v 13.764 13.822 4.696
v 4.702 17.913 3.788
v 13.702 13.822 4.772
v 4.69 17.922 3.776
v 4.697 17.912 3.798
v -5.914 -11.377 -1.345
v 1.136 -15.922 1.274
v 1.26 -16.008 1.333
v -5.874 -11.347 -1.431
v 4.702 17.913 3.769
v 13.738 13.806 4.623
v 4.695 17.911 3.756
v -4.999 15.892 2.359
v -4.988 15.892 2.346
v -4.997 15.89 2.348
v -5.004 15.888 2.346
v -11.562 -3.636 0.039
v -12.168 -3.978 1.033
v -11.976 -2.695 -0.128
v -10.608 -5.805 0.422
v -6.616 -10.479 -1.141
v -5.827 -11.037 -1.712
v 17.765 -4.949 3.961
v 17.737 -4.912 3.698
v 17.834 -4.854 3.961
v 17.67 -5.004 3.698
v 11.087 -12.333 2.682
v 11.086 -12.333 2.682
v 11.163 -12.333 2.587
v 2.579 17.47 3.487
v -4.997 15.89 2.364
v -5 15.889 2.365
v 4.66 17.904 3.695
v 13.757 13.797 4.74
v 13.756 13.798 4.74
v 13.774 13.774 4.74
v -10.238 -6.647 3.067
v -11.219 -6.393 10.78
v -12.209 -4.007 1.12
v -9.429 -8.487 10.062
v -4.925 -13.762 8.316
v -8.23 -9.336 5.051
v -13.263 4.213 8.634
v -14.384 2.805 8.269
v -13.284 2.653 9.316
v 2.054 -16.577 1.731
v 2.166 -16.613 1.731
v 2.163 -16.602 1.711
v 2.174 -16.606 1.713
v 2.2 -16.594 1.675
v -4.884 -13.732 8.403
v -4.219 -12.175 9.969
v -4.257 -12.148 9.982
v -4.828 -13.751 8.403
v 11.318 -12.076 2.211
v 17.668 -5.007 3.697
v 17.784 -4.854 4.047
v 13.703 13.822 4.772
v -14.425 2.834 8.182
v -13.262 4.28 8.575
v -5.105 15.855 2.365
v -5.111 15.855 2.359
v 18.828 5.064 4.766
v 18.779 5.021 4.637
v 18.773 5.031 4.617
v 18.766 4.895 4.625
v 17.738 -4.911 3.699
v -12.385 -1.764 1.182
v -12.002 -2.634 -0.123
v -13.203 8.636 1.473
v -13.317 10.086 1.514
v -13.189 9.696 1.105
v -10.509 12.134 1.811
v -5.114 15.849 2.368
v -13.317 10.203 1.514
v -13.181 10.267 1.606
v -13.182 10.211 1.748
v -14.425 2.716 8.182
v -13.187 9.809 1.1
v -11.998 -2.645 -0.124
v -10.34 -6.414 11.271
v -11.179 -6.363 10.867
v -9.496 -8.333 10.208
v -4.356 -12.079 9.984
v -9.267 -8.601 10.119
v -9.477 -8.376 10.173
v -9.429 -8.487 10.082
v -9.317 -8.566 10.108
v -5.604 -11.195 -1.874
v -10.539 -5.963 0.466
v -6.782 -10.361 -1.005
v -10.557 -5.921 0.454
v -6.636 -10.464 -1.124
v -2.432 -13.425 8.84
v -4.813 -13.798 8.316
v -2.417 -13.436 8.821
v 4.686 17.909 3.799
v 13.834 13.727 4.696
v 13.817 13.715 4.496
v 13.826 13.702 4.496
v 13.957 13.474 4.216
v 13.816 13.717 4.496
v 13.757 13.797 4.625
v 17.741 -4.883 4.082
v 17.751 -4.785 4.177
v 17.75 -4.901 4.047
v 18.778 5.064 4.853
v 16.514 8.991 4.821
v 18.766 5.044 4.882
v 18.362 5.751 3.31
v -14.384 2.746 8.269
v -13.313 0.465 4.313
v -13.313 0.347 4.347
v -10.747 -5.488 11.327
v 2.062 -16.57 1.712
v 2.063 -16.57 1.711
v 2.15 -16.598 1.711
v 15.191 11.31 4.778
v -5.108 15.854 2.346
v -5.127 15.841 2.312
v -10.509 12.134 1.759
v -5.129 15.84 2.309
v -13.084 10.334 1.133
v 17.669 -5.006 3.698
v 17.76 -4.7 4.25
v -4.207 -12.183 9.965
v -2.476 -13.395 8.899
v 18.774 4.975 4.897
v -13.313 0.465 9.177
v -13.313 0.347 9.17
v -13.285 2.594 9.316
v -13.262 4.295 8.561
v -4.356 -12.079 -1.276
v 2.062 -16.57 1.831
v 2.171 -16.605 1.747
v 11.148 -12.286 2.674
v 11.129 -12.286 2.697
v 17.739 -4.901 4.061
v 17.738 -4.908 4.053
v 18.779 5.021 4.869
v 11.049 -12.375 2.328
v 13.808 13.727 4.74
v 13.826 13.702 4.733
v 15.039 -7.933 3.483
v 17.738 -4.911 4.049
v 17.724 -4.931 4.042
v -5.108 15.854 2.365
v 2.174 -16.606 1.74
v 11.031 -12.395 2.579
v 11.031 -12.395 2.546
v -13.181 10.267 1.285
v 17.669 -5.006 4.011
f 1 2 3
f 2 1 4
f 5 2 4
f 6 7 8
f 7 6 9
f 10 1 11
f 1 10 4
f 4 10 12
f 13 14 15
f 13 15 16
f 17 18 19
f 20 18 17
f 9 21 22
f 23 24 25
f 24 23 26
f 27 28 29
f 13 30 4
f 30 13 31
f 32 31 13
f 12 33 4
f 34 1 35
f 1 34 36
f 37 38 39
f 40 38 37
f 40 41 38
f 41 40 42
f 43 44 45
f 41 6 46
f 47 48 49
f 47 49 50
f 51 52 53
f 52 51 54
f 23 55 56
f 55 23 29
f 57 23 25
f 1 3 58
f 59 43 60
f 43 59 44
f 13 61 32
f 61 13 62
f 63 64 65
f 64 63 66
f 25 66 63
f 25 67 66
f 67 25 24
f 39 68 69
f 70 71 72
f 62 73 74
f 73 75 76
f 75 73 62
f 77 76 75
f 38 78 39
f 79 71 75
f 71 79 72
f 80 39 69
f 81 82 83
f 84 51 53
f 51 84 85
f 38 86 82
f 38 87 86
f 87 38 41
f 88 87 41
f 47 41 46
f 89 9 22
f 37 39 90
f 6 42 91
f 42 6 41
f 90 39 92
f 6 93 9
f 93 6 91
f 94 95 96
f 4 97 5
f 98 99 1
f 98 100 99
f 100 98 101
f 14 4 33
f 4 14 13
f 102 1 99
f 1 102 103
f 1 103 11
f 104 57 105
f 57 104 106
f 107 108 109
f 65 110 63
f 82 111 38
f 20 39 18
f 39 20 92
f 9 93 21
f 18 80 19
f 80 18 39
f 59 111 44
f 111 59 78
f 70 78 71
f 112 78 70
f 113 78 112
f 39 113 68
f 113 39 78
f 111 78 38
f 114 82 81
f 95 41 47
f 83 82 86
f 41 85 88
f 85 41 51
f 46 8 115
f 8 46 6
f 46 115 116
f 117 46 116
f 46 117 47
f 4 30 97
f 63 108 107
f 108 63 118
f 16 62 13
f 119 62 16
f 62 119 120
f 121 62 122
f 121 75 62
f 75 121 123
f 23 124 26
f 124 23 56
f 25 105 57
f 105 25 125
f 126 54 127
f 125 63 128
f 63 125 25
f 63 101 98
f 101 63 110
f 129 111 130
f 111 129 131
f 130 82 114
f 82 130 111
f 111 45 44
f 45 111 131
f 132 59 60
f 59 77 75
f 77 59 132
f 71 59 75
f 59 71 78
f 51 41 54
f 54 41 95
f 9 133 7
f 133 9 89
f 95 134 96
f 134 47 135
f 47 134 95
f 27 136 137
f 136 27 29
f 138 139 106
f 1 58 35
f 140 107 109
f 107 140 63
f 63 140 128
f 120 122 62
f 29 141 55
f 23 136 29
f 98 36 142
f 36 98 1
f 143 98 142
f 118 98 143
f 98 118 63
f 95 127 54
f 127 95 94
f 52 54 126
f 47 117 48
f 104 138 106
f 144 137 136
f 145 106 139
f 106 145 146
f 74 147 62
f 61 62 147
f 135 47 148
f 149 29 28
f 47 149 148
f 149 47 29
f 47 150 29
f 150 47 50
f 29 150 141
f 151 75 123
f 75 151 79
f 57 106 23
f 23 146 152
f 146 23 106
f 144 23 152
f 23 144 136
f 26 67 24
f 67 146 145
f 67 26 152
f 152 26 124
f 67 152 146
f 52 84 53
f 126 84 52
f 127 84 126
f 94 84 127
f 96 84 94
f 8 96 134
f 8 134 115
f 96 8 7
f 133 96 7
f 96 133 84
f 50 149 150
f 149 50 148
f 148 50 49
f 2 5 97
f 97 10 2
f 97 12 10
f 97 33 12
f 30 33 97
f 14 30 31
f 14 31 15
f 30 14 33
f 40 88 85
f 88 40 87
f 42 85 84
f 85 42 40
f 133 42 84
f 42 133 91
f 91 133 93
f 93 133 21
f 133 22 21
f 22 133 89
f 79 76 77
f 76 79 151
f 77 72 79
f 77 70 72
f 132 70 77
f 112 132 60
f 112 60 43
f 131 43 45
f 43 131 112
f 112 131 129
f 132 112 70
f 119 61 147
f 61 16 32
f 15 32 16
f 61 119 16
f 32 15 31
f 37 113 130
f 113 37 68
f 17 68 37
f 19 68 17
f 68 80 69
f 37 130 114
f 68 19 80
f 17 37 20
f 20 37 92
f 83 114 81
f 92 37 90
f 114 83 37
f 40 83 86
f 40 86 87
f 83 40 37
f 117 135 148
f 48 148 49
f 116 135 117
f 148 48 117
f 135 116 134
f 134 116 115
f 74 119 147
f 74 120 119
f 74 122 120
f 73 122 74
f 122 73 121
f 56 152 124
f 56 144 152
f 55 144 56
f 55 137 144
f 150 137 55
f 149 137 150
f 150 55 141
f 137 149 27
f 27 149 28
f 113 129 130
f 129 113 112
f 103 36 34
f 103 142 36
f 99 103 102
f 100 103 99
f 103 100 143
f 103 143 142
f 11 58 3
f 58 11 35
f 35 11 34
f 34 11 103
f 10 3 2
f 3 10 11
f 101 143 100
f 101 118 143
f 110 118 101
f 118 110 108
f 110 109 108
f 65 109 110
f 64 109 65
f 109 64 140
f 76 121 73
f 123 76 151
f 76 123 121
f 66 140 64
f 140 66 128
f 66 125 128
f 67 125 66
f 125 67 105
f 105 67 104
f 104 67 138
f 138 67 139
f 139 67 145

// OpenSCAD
// Auto-generated OpenSCAD file

    inner_points = 10*[[1.1000305201583598, -1.229950875030529, -0.08894189251692455], [-0.5027426604470553, 1.579473909815398, -0.1908558995277139], [-0.846549708488417, -0.523909617402483, -1.3897599911510223], [0.01808376162039204, 0.08034171518490725, 1.6695577831956607], [0.1351283573464456, -0.5466570677439849, -1.5789443683117281], [0.9574436533003191, 0.028020099593282485, 1.3306397363982712], [-0.3601557935890146, 0.3215029351915868, -1.6104375284429095], [0.46215950236485903, 0.8961801025288543, 1.2991465762670897], [0.21433774726042953, -1.6511067907648083, -0.284328705476233], [0.4815241834294346, -1.4643828601215962, 0.6610524779902326], [-1.30999013029746, 1.0208149579040204, -0.3812546859455942], [-1.0428036941284546, 1.2075388885472327, 0.5641264975208714], [0.6928698992905247, -1.139259691273304, -0.9977847491226374], [1.2010887016589473, -0.7840896693003617, 0.8004371207145751], [-0.603800841947643, 1.133612704085231, -1.0802349127592135], [-0.09558203957922018, 1.4887827260581734, 0.7179869570779989], [-0.2929413398808356, -1.2918779775559366, -1.0676693641360977], [0.40656183134257406, -0.8030283806190294, 1.4073707065037098], [-1.2350277782105992, 0.35946047840145373, -1.1275729144590714], [-0.5355246069871895, 0.8483100753383608, 1.347467156180736], [1.766851594949058, 0.056206898787851886, -0.8094846211676406], [0.9654650046463505, 1.4609192912108153, -0.8604416246730354], [1.867909776449646, 0.502068104518019, 0.07989439206385895], [1.3726256255141858, 1.3702281074535907, 0.04840123193267751], [1.209110053004979, 0.6488095223171712, -1.3906442403567312], [1.7637877113705789, -0.4911118899577973, 0.027433986645217595], [0.46711697013241127, 1.781760505400738, -0.05501617699135854], [1.104987987925912, -0.3443704721586452, -1.443104645775373], [0.3036013976232044, 1.0603419202643185, -1.4940616492807675], [1.3695617419357062, 0.8229093187079415, 0.8853198397455359], [-0.9347794463333561, -0.8427966545821481, -0.44608283720557035], [-0.5024627112789515, -0.5406709882884531, 1.0835760499677713], [-1.3232575160555382, 0.04057344122178862, -0.18389576051361925], [-1.056071079886533, 0.2272973718650007, 0.7614854229528463], [-0.42750035919209084, -1.2020254677910198, 0.33725782145429417]];

    outer_points = 10*[[-0.7137129435947347, 0.17792343145379144, 1.5043015733227778], [1.3239769119334912, 0.17792343145379144, -1.0096506950540378], [0.21352822928092163, -1.651791935642422, 0.17307580265061], [-0.8237921976196783, 1.2959450727348392, -0.66772668091935], [0.4835667626024947, -1.2238088136169964, 1.035577766580492], [-0.5029835888873913, 1.5796556765245793, 0.23592708566413276], [1.113247557226148, -1.2238088136169964, 0.25872379260460726], [0.12669720573626192, 1.5796556765245793, -0.540926888311752], [-1.1138362715514227, -0.6333738467220617, 1.0780410322808966], [-1.4343859120759834, 0.2775269838144787, 0.8182187759451166], [0.8241219437372267, -0.6333738467220617, -1.3128696542138567], [0.503572303212666, 0.2775269838144787, -1.5726919105496369], [-0.21427005260755239, -0.6883947391266527, 1.5113461431831696], [-0.8239917014414573, 1.0442416020342355, 1.0171348432498628], [1.4342556697802138, -0.6883947391266527, -0.522483964981123], [0.824534020946309, 1.0442416020342355, -1.0166952649144299], [-0.48438908009468373, -1.370308098816377, 0.8316183440855609], [-1.3235989340695444, 1.0144612359087941, 0.1513948459648008], [0.7133349657307877, -1.370308098816377, -0.6460457242335407], [-0.125874888244073, 1.0144612359087941, -1.3262692223543007], [0.853949656636206, 0.5064090455601755, 1.7335725089256413], [1.872794584400319, 0.5064090455601755, 0.4765963747372335], [0.7436708987894836, 1.3727272161406197, 1.2464057788527265], [1.3733516934131367, 1.3727272161406197, 0.46955180487684184], [1.551786471846253, -0.029005028930168097, 1.2578041323229636], [-0.05351685582956189, 0.9163527802772624, 1.6416450205479904], [1.5950088665582043, 0.9163527802772624, -0.3921850876163021], [0.7545987172272076, -0.48537946479352545, 1.6530433740182278], [1.7734436449913207, -0.48537946479352545, 0.39606723982981995], [0.4658851809473687, 1.7826709508577065, 0.37762431649919076], [-0.5833500199011764, -1.1317876660773551, -0.1344638136829207], [-1.1020102333514763, 0.3420808381112755, -0.5548650554679007], [-0.08354328345131035, -0.85030382925131, -0.9535853405670716], [-0.40409292397587104, 0.06059700128523038, -1.2134075969028517], [-1.2127972113579153, -0.3948534139830398, 0.11195887451241493]];

    // Convex hull for inner set (I)
    module inner_hull() {
        hull() {
            for (p = inner_points) {
                translate(p) sphere(r=0.1);
            }
        }
    }

    // Convex hull for outer set (O) minus inner hull (O \ I)
    module outer_minus_inner() {
        difference() {
            hull() {
                for (p = outer_points) {
                    translate(p) sphere(r=0.1);
                }
            }
            inner_hull(); // Subtract inner hull
        }
    }

    // Convex hull for outer set (O) minus all translated inner hulls
    module outer_minus_AllTranslationInner() {
        difference() {
            hull() {
                for (p = outer_points) {
                    translate(p) sphere(r=0.1);
                }
            }
            hull() {
                translate([0,0,50]) inner_hull();
                translate([0,0,-50]) inner_hull();
            }; // Subtract translated inner hulls
        }
    }

    // Difference between outer_minus_inner and outer_minus_AllTranslationInner
    module outer_minus_inner_diff() {
        difference() {
            // Outer minus inner
            difference() {
                hull() {
                    for (p = outer_points) {
                        translate(p) sphere(r=0.1);
                    }
                }
                inner_hull();
            }

            // Subtract Outer minus AllTranslationInner
            difference() {
                hull() {
                    for (p = outer_points) {
                        translate(p) sphere(r=0.1);
                    }
                }
                hull() {
                    translate([0,0,50]) inner_hull();
                    translate([0,0,-50]) inner_hull();
                };
            }
        }
    }

    // Rendering all with colors applied
    color([0, 1, 0, 1]) outer_minus_AllTranslationInner(); // Opaque green
    
